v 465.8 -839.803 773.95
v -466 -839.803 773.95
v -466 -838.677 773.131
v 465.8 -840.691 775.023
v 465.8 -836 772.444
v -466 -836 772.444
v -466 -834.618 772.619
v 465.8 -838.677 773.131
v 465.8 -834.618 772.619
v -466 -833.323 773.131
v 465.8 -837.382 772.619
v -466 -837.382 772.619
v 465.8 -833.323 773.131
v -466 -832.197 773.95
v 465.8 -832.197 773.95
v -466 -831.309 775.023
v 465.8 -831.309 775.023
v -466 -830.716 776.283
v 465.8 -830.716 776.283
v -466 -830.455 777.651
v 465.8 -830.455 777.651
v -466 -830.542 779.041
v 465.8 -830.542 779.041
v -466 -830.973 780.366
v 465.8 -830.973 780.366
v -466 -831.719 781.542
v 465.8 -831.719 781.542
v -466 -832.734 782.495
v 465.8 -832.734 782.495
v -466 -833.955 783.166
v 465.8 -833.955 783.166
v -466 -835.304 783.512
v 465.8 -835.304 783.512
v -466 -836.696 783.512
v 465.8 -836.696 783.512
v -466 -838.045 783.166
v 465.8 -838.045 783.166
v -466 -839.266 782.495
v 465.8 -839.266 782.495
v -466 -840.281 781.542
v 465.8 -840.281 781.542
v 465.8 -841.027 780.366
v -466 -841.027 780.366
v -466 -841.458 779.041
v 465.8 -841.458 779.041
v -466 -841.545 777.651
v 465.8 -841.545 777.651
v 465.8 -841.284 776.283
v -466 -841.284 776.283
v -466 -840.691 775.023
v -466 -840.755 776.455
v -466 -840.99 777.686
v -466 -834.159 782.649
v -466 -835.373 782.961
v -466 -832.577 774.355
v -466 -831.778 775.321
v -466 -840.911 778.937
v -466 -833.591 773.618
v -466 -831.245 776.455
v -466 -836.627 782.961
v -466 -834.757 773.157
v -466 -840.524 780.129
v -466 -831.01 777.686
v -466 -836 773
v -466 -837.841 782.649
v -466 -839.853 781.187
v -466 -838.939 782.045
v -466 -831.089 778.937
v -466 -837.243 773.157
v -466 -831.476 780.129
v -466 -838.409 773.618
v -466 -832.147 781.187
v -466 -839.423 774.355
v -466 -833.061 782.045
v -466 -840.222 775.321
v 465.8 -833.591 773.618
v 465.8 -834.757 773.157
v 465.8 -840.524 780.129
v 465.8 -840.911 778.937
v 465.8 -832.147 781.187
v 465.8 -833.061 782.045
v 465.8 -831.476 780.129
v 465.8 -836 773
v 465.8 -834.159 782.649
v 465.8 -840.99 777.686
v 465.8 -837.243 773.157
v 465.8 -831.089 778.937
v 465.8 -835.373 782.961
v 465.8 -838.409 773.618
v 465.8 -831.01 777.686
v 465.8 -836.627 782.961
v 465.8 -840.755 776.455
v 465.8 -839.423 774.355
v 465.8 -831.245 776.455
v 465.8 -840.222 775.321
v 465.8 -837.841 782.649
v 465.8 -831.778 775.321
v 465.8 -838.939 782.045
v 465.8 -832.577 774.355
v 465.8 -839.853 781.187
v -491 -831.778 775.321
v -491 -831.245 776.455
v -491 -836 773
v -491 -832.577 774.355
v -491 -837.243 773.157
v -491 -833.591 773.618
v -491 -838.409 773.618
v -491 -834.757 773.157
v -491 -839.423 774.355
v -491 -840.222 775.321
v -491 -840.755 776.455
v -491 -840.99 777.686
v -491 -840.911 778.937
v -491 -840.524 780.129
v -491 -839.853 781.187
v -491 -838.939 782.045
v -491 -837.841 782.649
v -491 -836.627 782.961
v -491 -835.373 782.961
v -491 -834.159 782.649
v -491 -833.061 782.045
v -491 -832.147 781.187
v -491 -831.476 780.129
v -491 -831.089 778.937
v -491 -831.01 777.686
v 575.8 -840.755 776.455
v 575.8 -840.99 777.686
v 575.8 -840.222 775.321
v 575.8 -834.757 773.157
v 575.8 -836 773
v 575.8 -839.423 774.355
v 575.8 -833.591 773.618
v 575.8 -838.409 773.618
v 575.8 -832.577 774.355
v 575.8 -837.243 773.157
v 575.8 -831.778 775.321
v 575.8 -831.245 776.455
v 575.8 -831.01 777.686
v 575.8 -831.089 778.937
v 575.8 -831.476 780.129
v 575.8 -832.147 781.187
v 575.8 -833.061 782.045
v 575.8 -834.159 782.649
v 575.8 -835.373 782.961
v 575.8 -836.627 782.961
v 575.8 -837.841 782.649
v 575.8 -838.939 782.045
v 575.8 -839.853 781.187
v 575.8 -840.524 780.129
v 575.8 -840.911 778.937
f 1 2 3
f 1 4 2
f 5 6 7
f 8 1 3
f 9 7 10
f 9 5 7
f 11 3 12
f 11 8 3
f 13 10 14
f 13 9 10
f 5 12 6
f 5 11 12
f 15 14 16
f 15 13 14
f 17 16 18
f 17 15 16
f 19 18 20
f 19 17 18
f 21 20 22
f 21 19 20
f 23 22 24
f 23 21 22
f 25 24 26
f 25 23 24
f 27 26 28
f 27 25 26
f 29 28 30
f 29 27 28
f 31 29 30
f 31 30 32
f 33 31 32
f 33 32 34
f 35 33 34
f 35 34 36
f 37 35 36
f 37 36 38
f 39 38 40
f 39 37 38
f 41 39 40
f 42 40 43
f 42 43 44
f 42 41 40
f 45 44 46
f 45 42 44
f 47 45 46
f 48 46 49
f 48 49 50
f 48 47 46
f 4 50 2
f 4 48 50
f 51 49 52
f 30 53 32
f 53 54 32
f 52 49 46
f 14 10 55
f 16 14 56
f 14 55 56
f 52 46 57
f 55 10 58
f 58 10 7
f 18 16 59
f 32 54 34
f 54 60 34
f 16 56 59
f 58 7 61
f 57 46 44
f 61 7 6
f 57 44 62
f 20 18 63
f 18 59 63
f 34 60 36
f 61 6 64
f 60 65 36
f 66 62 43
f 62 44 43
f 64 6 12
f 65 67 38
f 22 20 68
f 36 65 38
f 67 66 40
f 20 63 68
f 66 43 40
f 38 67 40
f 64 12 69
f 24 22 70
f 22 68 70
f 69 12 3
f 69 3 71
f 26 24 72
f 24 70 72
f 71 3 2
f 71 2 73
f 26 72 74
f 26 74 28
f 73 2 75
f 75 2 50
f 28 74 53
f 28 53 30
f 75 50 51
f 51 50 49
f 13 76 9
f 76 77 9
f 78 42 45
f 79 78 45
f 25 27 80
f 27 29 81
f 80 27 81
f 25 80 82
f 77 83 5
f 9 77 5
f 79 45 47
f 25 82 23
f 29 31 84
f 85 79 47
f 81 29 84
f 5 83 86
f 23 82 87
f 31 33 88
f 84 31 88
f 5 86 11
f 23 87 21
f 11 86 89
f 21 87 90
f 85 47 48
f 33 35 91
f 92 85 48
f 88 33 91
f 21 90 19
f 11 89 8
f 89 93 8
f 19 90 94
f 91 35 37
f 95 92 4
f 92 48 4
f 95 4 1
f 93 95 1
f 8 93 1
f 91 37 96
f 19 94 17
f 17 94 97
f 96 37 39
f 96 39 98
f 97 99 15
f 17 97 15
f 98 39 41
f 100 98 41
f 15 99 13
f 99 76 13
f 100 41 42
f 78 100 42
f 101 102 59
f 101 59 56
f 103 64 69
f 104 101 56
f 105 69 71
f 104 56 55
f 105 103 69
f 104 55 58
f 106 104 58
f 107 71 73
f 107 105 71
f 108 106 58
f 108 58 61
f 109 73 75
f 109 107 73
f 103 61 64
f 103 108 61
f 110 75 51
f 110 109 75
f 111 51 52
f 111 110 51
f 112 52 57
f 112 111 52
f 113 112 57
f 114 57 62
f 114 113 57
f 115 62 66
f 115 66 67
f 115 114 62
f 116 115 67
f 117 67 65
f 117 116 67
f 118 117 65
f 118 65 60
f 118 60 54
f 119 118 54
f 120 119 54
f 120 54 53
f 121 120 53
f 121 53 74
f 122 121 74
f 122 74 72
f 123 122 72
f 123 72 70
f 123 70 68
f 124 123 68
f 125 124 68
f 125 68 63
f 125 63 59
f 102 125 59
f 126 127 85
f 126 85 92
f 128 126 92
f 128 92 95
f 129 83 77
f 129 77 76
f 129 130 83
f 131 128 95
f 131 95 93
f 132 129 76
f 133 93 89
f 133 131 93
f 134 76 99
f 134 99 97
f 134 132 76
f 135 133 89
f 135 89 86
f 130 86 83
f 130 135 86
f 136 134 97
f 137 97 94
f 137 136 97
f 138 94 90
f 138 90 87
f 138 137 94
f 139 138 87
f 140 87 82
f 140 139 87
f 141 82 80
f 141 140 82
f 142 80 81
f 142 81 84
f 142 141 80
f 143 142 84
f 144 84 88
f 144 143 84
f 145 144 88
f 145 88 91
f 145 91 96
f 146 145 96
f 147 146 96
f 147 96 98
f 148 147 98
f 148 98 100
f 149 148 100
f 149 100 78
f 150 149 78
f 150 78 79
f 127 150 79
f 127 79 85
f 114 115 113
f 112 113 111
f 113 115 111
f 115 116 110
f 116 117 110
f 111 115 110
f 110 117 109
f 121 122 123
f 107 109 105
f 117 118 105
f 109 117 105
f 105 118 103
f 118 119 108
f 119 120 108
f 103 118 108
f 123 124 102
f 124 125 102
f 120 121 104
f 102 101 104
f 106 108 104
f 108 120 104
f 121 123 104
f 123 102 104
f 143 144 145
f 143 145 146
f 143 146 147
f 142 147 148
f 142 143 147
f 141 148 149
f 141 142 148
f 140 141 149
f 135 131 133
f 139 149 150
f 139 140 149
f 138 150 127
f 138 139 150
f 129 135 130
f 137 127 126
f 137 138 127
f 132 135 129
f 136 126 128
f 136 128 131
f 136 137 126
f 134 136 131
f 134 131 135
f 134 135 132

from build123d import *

# Parameters (mm, degrees)
CYLINDER_R           = 5.556
CYLINDER_DEPTH       = 1066.8
CYLINDER_PITCH_ANGLE = 90
SKETCH_R             = 7
SKETCH_R_2           = 5
POCKET_DEPTH         = 25
SKETCH001_R          = 7
SKETCH001_R_2        = 5
POCKET001_DEPTH      = 110


with BuildPart() as part:
    # Cylinder → Cylinder (new body)
    with BuildSketch(Plane.XY):
        Circle(CYLINDER_R)
    extrude(amount=CYLINDER_DEPTH)


with BuildPart() as part_1:
    # Cylinder pitch: moved
    add(part.part.rotate(Axis((0, 0, 0), (0, 1, 0)), CYLINDER_PITCH_ANGLE))


with BuildPart() as part_2:
    # Cylinder placement: moved
    add(part_1.part.moved(Location((-491, -836, 778))))

    # Sketch → Pocket (cut)
    with BuildSketch(Plane(origin=(-491, -836, 778), x_dir=(0, 0, -1), z_dir=(-1, 0, 0))):
        Circle(SKETCH_R)
        Circle(SKETCH_R_2, mode=Mode.SUBTRACT)
    extrude(amount=-POCKET_DEPTH, mode=Mode.SUBTRACT)

    # Sketch001 → Pocket001 (cut)
    with BuildSketch(Plane(origin=(575.8, -836, 778), x_dir=(0, 0, -1), z_dir=(1, 0, 0))):
        Circle(SKETCH001_R)
        Circle(SKETCH001_R_2, mode=Mode.SUBTRACT)
    extrude(amount=-POCKET001_DEPTH, mode=Mode.SUBTRACT)


solid = part_2.part
